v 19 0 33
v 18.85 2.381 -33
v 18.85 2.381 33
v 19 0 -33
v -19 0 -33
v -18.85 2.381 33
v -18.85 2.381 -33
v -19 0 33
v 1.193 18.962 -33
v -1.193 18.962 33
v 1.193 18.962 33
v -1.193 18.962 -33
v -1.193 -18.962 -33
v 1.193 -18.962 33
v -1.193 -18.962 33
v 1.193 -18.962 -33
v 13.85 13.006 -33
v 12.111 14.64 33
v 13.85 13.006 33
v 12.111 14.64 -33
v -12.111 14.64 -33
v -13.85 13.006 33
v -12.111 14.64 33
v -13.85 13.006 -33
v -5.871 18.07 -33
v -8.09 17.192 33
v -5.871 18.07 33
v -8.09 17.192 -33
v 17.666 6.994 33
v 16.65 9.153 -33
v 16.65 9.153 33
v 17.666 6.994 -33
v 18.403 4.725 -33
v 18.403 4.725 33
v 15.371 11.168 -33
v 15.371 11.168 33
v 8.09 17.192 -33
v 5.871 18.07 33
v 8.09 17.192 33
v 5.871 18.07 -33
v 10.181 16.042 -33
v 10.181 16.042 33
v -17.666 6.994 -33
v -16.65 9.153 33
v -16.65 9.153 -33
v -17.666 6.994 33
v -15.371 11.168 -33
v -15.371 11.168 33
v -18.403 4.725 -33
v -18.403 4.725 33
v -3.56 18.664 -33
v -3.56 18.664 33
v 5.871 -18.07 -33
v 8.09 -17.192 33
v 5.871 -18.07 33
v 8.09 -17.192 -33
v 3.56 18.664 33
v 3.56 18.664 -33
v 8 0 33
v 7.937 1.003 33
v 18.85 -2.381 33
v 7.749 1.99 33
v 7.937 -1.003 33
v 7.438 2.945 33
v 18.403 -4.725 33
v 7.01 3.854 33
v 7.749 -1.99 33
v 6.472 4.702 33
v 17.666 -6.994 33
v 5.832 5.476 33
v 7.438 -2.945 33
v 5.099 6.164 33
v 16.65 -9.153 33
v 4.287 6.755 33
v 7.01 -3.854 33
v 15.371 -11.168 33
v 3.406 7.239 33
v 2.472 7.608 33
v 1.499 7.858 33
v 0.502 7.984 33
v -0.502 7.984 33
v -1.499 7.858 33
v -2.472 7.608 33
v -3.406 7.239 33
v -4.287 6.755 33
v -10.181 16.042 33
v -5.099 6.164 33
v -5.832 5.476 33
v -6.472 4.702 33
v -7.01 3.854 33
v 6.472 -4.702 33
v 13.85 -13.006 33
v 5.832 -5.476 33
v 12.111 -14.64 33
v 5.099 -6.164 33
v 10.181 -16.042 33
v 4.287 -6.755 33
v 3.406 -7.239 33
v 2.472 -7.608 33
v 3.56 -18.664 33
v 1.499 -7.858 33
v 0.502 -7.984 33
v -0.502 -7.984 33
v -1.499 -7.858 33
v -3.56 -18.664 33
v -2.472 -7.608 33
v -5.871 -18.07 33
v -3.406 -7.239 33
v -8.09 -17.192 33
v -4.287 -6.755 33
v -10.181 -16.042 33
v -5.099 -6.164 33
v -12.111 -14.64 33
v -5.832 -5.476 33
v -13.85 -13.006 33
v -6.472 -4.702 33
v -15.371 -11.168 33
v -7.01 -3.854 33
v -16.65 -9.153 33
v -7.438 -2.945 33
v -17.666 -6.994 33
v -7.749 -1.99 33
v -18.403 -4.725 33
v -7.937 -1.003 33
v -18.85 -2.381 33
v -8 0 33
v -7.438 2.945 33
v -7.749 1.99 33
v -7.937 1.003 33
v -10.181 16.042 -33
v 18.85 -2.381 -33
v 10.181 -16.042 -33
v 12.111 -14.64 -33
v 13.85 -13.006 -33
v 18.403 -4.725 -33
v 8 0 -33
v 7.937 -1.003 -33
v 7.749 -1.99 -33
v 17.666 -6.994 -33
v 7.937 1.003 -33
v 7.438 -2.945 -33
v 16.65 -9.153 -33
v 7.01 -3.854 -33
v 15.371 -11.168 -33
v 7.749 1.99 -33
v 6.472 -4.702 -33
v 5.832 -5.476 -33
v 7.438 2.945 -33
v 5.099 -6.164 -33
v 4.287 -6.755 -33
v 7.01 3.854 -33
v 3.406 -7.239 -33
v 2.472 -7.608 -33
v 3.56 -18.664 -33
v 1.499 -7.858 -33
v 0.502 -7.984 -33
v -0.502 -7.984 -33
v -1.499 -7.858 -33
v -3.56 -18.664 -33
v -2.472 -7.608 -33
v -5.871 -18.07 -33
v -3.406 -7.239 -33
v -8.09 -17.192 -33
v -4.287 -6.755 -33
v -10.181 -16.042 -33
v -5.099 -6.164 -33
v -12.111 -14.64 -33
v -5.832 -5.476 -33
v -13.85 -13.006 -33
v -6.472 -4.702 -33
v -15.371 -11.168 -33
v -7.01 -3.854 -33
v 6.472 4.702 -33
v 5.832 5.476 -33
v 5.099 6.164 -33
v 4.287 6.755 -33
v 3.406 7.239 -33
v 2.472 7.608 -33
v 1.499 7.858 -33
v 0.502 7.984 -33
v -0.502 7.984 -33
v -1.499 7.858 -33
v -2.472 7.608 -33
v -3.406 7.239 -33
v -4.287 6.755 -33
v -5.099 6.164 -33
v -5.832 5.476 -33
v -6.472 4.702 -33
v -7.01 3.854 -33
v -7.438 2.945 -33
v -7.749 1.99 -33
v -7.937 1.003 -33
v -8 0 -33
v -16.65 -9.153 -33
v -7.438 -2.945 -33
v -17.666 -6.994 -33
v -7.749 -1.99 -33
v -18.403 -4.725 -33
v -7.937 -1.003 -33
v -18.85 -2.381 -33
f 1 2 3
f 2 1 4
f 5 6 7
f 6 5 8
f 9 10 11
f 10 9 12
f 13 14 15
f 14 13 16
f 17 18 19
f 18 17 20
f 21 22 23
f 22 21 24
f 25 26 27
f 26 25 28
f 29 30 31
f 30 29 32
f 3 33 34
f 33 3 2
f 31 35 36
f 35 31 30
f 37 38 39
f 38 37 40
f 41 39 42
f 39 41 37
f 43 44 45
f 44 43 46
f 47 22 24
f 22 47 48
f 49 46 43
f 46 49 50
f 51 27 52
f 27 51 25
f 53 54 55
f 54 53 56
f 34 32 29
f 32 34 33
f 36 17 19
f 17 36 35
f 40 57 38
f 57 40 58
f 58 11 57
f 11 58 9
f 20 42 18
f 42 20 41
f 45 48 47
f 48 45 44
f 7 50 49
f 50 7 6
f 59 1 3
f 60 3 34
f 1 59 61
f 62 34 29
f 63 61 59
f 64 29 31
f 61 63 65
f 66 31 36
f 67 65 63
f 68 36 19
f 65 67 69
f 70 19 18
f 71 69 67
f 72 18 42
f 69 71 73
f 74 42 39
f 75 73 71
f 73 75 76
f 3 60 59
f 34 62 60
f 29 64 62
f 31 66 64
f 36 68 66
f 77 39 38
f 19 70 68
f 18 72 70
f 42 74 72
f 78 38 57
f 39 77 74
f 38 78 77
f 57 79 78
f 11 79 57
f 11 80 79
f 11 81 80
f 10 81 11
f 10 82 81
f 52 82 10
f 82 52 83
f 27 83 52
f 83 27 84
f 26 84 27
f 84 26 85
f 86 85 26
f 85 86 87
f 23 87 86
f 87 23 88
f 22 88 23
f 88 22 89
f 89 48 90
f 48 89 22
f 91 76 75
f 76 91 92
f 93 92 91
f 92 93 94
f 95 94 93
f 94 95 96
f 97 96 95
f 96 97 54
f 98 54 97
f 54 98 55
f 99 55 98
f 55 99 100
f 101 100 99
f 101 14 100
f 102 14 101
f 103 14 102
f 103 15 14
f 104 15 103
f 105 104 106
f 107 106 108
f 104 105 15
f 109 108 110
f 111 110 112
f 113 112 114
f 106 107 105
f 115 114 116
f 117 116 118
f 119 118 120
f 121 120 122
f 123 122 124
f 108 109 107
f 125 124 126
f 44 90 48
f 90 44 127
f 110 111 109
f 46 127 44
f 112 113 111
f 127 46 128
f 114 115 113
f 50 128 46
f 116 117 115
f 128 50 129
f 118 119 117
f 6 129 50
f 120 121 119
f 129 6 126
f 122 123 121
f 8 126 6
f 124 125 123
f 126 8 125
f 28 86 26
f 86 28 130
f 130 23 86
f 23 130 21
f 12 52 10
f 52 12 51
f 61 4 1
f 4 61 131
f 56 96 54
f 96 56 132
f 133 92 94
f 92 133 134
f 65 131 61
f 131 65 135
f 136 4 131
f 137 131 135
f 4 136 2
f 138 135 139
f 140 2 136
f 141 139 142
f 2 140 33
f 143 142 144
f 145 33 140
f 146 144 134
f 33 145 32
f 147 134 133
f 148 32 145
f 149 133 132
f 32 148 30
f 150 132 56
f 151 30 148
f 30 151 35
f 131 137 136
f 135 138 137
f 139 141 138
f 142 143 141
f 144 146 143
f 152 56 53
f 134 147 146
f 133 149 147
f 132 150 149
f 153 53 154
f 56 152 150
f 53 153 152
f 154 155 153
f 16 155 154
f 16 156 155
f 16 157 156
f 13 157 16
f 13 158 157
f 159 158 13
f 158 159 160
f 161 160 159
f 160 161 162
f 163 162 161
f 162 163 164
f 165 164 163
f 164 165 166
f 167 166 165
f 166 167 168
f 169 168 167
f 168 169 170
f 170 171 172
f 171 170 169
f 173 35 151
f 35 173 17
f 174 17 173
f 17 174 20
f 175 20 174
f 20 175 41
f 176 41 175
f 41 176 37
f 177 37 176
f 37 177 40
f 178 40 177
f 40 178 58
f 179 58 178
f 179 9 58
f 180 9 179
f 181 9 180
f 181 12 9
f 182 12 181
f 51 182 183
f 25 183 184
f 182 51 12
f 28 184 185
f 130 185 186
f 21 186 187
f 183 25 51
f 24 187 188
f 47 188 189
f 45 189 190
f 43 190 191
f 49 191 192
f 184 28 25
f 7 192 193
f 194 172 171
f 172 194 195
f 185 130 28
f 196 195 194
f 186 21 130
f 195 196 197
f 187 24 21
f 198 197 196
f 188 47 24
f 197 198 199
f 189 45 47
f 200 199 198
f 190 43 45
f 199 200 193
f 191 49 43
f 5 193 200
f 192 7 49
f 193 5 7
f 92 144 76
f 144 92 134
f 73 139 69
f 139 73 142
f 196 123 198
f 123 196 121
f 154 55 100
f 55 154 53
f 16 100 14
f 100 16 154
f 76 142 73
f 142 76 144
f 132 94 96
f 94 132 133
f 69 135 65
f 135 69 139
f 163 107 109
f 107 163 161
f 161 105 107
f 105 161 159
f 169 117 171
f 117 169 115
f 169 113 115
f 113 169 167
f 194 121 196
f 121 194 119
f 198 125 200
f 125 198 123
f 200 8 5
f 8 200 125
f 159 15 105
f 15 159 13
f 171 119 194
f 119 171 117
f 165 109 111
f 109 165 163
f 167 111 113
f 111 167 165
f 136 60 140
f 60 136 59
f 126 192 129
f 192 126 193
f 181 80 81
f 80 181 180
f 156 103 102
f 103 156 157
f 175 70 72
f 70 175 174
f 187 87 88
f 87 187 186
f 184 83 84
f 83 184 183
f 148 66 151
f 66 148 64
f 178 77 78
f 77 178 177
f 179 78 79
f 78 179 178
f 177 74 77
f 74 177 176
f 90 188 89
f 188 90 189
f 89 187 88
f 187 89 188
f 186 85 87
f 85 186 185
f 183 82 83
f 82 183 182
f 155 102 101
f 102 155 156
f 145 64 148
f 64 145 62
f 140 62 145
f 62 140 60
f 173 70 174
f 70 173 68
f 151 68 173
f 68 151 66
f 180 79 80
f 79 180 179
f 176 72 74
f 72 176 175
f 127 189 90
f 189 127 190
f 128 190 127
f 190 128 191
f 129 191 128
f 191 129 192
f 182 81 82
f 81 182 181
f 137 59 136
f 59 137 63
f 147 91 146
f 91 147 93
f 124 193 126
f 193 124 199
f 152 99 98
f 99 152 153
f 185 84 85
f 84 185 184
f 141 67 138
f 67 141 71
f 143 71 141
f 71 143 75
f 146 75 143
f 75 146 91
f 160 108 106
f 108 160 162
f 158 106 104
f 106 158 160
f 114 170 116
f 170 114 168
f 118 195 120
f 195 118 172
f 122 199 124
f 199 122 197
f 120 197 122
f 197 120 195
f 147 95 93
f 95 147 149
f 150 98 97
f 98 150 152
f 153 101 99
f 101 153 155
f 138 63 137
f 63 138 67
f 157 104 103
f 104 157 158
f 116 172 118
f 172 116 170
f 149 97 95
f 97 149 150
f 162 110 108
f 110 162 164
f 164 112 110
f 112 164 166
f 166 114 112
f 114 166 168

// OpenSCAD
$fn = 50;


difference() {
	union() {
		translate(v = [0, 0, -33.0000000000]) {
			cylinder(h = 66, r = 19.0000000000);
		}
	}
	union() {
		translate(v = [0, 0, -100.0000000000]) {
			cylinder(h = 200, r = 8);
		}
	}
}
